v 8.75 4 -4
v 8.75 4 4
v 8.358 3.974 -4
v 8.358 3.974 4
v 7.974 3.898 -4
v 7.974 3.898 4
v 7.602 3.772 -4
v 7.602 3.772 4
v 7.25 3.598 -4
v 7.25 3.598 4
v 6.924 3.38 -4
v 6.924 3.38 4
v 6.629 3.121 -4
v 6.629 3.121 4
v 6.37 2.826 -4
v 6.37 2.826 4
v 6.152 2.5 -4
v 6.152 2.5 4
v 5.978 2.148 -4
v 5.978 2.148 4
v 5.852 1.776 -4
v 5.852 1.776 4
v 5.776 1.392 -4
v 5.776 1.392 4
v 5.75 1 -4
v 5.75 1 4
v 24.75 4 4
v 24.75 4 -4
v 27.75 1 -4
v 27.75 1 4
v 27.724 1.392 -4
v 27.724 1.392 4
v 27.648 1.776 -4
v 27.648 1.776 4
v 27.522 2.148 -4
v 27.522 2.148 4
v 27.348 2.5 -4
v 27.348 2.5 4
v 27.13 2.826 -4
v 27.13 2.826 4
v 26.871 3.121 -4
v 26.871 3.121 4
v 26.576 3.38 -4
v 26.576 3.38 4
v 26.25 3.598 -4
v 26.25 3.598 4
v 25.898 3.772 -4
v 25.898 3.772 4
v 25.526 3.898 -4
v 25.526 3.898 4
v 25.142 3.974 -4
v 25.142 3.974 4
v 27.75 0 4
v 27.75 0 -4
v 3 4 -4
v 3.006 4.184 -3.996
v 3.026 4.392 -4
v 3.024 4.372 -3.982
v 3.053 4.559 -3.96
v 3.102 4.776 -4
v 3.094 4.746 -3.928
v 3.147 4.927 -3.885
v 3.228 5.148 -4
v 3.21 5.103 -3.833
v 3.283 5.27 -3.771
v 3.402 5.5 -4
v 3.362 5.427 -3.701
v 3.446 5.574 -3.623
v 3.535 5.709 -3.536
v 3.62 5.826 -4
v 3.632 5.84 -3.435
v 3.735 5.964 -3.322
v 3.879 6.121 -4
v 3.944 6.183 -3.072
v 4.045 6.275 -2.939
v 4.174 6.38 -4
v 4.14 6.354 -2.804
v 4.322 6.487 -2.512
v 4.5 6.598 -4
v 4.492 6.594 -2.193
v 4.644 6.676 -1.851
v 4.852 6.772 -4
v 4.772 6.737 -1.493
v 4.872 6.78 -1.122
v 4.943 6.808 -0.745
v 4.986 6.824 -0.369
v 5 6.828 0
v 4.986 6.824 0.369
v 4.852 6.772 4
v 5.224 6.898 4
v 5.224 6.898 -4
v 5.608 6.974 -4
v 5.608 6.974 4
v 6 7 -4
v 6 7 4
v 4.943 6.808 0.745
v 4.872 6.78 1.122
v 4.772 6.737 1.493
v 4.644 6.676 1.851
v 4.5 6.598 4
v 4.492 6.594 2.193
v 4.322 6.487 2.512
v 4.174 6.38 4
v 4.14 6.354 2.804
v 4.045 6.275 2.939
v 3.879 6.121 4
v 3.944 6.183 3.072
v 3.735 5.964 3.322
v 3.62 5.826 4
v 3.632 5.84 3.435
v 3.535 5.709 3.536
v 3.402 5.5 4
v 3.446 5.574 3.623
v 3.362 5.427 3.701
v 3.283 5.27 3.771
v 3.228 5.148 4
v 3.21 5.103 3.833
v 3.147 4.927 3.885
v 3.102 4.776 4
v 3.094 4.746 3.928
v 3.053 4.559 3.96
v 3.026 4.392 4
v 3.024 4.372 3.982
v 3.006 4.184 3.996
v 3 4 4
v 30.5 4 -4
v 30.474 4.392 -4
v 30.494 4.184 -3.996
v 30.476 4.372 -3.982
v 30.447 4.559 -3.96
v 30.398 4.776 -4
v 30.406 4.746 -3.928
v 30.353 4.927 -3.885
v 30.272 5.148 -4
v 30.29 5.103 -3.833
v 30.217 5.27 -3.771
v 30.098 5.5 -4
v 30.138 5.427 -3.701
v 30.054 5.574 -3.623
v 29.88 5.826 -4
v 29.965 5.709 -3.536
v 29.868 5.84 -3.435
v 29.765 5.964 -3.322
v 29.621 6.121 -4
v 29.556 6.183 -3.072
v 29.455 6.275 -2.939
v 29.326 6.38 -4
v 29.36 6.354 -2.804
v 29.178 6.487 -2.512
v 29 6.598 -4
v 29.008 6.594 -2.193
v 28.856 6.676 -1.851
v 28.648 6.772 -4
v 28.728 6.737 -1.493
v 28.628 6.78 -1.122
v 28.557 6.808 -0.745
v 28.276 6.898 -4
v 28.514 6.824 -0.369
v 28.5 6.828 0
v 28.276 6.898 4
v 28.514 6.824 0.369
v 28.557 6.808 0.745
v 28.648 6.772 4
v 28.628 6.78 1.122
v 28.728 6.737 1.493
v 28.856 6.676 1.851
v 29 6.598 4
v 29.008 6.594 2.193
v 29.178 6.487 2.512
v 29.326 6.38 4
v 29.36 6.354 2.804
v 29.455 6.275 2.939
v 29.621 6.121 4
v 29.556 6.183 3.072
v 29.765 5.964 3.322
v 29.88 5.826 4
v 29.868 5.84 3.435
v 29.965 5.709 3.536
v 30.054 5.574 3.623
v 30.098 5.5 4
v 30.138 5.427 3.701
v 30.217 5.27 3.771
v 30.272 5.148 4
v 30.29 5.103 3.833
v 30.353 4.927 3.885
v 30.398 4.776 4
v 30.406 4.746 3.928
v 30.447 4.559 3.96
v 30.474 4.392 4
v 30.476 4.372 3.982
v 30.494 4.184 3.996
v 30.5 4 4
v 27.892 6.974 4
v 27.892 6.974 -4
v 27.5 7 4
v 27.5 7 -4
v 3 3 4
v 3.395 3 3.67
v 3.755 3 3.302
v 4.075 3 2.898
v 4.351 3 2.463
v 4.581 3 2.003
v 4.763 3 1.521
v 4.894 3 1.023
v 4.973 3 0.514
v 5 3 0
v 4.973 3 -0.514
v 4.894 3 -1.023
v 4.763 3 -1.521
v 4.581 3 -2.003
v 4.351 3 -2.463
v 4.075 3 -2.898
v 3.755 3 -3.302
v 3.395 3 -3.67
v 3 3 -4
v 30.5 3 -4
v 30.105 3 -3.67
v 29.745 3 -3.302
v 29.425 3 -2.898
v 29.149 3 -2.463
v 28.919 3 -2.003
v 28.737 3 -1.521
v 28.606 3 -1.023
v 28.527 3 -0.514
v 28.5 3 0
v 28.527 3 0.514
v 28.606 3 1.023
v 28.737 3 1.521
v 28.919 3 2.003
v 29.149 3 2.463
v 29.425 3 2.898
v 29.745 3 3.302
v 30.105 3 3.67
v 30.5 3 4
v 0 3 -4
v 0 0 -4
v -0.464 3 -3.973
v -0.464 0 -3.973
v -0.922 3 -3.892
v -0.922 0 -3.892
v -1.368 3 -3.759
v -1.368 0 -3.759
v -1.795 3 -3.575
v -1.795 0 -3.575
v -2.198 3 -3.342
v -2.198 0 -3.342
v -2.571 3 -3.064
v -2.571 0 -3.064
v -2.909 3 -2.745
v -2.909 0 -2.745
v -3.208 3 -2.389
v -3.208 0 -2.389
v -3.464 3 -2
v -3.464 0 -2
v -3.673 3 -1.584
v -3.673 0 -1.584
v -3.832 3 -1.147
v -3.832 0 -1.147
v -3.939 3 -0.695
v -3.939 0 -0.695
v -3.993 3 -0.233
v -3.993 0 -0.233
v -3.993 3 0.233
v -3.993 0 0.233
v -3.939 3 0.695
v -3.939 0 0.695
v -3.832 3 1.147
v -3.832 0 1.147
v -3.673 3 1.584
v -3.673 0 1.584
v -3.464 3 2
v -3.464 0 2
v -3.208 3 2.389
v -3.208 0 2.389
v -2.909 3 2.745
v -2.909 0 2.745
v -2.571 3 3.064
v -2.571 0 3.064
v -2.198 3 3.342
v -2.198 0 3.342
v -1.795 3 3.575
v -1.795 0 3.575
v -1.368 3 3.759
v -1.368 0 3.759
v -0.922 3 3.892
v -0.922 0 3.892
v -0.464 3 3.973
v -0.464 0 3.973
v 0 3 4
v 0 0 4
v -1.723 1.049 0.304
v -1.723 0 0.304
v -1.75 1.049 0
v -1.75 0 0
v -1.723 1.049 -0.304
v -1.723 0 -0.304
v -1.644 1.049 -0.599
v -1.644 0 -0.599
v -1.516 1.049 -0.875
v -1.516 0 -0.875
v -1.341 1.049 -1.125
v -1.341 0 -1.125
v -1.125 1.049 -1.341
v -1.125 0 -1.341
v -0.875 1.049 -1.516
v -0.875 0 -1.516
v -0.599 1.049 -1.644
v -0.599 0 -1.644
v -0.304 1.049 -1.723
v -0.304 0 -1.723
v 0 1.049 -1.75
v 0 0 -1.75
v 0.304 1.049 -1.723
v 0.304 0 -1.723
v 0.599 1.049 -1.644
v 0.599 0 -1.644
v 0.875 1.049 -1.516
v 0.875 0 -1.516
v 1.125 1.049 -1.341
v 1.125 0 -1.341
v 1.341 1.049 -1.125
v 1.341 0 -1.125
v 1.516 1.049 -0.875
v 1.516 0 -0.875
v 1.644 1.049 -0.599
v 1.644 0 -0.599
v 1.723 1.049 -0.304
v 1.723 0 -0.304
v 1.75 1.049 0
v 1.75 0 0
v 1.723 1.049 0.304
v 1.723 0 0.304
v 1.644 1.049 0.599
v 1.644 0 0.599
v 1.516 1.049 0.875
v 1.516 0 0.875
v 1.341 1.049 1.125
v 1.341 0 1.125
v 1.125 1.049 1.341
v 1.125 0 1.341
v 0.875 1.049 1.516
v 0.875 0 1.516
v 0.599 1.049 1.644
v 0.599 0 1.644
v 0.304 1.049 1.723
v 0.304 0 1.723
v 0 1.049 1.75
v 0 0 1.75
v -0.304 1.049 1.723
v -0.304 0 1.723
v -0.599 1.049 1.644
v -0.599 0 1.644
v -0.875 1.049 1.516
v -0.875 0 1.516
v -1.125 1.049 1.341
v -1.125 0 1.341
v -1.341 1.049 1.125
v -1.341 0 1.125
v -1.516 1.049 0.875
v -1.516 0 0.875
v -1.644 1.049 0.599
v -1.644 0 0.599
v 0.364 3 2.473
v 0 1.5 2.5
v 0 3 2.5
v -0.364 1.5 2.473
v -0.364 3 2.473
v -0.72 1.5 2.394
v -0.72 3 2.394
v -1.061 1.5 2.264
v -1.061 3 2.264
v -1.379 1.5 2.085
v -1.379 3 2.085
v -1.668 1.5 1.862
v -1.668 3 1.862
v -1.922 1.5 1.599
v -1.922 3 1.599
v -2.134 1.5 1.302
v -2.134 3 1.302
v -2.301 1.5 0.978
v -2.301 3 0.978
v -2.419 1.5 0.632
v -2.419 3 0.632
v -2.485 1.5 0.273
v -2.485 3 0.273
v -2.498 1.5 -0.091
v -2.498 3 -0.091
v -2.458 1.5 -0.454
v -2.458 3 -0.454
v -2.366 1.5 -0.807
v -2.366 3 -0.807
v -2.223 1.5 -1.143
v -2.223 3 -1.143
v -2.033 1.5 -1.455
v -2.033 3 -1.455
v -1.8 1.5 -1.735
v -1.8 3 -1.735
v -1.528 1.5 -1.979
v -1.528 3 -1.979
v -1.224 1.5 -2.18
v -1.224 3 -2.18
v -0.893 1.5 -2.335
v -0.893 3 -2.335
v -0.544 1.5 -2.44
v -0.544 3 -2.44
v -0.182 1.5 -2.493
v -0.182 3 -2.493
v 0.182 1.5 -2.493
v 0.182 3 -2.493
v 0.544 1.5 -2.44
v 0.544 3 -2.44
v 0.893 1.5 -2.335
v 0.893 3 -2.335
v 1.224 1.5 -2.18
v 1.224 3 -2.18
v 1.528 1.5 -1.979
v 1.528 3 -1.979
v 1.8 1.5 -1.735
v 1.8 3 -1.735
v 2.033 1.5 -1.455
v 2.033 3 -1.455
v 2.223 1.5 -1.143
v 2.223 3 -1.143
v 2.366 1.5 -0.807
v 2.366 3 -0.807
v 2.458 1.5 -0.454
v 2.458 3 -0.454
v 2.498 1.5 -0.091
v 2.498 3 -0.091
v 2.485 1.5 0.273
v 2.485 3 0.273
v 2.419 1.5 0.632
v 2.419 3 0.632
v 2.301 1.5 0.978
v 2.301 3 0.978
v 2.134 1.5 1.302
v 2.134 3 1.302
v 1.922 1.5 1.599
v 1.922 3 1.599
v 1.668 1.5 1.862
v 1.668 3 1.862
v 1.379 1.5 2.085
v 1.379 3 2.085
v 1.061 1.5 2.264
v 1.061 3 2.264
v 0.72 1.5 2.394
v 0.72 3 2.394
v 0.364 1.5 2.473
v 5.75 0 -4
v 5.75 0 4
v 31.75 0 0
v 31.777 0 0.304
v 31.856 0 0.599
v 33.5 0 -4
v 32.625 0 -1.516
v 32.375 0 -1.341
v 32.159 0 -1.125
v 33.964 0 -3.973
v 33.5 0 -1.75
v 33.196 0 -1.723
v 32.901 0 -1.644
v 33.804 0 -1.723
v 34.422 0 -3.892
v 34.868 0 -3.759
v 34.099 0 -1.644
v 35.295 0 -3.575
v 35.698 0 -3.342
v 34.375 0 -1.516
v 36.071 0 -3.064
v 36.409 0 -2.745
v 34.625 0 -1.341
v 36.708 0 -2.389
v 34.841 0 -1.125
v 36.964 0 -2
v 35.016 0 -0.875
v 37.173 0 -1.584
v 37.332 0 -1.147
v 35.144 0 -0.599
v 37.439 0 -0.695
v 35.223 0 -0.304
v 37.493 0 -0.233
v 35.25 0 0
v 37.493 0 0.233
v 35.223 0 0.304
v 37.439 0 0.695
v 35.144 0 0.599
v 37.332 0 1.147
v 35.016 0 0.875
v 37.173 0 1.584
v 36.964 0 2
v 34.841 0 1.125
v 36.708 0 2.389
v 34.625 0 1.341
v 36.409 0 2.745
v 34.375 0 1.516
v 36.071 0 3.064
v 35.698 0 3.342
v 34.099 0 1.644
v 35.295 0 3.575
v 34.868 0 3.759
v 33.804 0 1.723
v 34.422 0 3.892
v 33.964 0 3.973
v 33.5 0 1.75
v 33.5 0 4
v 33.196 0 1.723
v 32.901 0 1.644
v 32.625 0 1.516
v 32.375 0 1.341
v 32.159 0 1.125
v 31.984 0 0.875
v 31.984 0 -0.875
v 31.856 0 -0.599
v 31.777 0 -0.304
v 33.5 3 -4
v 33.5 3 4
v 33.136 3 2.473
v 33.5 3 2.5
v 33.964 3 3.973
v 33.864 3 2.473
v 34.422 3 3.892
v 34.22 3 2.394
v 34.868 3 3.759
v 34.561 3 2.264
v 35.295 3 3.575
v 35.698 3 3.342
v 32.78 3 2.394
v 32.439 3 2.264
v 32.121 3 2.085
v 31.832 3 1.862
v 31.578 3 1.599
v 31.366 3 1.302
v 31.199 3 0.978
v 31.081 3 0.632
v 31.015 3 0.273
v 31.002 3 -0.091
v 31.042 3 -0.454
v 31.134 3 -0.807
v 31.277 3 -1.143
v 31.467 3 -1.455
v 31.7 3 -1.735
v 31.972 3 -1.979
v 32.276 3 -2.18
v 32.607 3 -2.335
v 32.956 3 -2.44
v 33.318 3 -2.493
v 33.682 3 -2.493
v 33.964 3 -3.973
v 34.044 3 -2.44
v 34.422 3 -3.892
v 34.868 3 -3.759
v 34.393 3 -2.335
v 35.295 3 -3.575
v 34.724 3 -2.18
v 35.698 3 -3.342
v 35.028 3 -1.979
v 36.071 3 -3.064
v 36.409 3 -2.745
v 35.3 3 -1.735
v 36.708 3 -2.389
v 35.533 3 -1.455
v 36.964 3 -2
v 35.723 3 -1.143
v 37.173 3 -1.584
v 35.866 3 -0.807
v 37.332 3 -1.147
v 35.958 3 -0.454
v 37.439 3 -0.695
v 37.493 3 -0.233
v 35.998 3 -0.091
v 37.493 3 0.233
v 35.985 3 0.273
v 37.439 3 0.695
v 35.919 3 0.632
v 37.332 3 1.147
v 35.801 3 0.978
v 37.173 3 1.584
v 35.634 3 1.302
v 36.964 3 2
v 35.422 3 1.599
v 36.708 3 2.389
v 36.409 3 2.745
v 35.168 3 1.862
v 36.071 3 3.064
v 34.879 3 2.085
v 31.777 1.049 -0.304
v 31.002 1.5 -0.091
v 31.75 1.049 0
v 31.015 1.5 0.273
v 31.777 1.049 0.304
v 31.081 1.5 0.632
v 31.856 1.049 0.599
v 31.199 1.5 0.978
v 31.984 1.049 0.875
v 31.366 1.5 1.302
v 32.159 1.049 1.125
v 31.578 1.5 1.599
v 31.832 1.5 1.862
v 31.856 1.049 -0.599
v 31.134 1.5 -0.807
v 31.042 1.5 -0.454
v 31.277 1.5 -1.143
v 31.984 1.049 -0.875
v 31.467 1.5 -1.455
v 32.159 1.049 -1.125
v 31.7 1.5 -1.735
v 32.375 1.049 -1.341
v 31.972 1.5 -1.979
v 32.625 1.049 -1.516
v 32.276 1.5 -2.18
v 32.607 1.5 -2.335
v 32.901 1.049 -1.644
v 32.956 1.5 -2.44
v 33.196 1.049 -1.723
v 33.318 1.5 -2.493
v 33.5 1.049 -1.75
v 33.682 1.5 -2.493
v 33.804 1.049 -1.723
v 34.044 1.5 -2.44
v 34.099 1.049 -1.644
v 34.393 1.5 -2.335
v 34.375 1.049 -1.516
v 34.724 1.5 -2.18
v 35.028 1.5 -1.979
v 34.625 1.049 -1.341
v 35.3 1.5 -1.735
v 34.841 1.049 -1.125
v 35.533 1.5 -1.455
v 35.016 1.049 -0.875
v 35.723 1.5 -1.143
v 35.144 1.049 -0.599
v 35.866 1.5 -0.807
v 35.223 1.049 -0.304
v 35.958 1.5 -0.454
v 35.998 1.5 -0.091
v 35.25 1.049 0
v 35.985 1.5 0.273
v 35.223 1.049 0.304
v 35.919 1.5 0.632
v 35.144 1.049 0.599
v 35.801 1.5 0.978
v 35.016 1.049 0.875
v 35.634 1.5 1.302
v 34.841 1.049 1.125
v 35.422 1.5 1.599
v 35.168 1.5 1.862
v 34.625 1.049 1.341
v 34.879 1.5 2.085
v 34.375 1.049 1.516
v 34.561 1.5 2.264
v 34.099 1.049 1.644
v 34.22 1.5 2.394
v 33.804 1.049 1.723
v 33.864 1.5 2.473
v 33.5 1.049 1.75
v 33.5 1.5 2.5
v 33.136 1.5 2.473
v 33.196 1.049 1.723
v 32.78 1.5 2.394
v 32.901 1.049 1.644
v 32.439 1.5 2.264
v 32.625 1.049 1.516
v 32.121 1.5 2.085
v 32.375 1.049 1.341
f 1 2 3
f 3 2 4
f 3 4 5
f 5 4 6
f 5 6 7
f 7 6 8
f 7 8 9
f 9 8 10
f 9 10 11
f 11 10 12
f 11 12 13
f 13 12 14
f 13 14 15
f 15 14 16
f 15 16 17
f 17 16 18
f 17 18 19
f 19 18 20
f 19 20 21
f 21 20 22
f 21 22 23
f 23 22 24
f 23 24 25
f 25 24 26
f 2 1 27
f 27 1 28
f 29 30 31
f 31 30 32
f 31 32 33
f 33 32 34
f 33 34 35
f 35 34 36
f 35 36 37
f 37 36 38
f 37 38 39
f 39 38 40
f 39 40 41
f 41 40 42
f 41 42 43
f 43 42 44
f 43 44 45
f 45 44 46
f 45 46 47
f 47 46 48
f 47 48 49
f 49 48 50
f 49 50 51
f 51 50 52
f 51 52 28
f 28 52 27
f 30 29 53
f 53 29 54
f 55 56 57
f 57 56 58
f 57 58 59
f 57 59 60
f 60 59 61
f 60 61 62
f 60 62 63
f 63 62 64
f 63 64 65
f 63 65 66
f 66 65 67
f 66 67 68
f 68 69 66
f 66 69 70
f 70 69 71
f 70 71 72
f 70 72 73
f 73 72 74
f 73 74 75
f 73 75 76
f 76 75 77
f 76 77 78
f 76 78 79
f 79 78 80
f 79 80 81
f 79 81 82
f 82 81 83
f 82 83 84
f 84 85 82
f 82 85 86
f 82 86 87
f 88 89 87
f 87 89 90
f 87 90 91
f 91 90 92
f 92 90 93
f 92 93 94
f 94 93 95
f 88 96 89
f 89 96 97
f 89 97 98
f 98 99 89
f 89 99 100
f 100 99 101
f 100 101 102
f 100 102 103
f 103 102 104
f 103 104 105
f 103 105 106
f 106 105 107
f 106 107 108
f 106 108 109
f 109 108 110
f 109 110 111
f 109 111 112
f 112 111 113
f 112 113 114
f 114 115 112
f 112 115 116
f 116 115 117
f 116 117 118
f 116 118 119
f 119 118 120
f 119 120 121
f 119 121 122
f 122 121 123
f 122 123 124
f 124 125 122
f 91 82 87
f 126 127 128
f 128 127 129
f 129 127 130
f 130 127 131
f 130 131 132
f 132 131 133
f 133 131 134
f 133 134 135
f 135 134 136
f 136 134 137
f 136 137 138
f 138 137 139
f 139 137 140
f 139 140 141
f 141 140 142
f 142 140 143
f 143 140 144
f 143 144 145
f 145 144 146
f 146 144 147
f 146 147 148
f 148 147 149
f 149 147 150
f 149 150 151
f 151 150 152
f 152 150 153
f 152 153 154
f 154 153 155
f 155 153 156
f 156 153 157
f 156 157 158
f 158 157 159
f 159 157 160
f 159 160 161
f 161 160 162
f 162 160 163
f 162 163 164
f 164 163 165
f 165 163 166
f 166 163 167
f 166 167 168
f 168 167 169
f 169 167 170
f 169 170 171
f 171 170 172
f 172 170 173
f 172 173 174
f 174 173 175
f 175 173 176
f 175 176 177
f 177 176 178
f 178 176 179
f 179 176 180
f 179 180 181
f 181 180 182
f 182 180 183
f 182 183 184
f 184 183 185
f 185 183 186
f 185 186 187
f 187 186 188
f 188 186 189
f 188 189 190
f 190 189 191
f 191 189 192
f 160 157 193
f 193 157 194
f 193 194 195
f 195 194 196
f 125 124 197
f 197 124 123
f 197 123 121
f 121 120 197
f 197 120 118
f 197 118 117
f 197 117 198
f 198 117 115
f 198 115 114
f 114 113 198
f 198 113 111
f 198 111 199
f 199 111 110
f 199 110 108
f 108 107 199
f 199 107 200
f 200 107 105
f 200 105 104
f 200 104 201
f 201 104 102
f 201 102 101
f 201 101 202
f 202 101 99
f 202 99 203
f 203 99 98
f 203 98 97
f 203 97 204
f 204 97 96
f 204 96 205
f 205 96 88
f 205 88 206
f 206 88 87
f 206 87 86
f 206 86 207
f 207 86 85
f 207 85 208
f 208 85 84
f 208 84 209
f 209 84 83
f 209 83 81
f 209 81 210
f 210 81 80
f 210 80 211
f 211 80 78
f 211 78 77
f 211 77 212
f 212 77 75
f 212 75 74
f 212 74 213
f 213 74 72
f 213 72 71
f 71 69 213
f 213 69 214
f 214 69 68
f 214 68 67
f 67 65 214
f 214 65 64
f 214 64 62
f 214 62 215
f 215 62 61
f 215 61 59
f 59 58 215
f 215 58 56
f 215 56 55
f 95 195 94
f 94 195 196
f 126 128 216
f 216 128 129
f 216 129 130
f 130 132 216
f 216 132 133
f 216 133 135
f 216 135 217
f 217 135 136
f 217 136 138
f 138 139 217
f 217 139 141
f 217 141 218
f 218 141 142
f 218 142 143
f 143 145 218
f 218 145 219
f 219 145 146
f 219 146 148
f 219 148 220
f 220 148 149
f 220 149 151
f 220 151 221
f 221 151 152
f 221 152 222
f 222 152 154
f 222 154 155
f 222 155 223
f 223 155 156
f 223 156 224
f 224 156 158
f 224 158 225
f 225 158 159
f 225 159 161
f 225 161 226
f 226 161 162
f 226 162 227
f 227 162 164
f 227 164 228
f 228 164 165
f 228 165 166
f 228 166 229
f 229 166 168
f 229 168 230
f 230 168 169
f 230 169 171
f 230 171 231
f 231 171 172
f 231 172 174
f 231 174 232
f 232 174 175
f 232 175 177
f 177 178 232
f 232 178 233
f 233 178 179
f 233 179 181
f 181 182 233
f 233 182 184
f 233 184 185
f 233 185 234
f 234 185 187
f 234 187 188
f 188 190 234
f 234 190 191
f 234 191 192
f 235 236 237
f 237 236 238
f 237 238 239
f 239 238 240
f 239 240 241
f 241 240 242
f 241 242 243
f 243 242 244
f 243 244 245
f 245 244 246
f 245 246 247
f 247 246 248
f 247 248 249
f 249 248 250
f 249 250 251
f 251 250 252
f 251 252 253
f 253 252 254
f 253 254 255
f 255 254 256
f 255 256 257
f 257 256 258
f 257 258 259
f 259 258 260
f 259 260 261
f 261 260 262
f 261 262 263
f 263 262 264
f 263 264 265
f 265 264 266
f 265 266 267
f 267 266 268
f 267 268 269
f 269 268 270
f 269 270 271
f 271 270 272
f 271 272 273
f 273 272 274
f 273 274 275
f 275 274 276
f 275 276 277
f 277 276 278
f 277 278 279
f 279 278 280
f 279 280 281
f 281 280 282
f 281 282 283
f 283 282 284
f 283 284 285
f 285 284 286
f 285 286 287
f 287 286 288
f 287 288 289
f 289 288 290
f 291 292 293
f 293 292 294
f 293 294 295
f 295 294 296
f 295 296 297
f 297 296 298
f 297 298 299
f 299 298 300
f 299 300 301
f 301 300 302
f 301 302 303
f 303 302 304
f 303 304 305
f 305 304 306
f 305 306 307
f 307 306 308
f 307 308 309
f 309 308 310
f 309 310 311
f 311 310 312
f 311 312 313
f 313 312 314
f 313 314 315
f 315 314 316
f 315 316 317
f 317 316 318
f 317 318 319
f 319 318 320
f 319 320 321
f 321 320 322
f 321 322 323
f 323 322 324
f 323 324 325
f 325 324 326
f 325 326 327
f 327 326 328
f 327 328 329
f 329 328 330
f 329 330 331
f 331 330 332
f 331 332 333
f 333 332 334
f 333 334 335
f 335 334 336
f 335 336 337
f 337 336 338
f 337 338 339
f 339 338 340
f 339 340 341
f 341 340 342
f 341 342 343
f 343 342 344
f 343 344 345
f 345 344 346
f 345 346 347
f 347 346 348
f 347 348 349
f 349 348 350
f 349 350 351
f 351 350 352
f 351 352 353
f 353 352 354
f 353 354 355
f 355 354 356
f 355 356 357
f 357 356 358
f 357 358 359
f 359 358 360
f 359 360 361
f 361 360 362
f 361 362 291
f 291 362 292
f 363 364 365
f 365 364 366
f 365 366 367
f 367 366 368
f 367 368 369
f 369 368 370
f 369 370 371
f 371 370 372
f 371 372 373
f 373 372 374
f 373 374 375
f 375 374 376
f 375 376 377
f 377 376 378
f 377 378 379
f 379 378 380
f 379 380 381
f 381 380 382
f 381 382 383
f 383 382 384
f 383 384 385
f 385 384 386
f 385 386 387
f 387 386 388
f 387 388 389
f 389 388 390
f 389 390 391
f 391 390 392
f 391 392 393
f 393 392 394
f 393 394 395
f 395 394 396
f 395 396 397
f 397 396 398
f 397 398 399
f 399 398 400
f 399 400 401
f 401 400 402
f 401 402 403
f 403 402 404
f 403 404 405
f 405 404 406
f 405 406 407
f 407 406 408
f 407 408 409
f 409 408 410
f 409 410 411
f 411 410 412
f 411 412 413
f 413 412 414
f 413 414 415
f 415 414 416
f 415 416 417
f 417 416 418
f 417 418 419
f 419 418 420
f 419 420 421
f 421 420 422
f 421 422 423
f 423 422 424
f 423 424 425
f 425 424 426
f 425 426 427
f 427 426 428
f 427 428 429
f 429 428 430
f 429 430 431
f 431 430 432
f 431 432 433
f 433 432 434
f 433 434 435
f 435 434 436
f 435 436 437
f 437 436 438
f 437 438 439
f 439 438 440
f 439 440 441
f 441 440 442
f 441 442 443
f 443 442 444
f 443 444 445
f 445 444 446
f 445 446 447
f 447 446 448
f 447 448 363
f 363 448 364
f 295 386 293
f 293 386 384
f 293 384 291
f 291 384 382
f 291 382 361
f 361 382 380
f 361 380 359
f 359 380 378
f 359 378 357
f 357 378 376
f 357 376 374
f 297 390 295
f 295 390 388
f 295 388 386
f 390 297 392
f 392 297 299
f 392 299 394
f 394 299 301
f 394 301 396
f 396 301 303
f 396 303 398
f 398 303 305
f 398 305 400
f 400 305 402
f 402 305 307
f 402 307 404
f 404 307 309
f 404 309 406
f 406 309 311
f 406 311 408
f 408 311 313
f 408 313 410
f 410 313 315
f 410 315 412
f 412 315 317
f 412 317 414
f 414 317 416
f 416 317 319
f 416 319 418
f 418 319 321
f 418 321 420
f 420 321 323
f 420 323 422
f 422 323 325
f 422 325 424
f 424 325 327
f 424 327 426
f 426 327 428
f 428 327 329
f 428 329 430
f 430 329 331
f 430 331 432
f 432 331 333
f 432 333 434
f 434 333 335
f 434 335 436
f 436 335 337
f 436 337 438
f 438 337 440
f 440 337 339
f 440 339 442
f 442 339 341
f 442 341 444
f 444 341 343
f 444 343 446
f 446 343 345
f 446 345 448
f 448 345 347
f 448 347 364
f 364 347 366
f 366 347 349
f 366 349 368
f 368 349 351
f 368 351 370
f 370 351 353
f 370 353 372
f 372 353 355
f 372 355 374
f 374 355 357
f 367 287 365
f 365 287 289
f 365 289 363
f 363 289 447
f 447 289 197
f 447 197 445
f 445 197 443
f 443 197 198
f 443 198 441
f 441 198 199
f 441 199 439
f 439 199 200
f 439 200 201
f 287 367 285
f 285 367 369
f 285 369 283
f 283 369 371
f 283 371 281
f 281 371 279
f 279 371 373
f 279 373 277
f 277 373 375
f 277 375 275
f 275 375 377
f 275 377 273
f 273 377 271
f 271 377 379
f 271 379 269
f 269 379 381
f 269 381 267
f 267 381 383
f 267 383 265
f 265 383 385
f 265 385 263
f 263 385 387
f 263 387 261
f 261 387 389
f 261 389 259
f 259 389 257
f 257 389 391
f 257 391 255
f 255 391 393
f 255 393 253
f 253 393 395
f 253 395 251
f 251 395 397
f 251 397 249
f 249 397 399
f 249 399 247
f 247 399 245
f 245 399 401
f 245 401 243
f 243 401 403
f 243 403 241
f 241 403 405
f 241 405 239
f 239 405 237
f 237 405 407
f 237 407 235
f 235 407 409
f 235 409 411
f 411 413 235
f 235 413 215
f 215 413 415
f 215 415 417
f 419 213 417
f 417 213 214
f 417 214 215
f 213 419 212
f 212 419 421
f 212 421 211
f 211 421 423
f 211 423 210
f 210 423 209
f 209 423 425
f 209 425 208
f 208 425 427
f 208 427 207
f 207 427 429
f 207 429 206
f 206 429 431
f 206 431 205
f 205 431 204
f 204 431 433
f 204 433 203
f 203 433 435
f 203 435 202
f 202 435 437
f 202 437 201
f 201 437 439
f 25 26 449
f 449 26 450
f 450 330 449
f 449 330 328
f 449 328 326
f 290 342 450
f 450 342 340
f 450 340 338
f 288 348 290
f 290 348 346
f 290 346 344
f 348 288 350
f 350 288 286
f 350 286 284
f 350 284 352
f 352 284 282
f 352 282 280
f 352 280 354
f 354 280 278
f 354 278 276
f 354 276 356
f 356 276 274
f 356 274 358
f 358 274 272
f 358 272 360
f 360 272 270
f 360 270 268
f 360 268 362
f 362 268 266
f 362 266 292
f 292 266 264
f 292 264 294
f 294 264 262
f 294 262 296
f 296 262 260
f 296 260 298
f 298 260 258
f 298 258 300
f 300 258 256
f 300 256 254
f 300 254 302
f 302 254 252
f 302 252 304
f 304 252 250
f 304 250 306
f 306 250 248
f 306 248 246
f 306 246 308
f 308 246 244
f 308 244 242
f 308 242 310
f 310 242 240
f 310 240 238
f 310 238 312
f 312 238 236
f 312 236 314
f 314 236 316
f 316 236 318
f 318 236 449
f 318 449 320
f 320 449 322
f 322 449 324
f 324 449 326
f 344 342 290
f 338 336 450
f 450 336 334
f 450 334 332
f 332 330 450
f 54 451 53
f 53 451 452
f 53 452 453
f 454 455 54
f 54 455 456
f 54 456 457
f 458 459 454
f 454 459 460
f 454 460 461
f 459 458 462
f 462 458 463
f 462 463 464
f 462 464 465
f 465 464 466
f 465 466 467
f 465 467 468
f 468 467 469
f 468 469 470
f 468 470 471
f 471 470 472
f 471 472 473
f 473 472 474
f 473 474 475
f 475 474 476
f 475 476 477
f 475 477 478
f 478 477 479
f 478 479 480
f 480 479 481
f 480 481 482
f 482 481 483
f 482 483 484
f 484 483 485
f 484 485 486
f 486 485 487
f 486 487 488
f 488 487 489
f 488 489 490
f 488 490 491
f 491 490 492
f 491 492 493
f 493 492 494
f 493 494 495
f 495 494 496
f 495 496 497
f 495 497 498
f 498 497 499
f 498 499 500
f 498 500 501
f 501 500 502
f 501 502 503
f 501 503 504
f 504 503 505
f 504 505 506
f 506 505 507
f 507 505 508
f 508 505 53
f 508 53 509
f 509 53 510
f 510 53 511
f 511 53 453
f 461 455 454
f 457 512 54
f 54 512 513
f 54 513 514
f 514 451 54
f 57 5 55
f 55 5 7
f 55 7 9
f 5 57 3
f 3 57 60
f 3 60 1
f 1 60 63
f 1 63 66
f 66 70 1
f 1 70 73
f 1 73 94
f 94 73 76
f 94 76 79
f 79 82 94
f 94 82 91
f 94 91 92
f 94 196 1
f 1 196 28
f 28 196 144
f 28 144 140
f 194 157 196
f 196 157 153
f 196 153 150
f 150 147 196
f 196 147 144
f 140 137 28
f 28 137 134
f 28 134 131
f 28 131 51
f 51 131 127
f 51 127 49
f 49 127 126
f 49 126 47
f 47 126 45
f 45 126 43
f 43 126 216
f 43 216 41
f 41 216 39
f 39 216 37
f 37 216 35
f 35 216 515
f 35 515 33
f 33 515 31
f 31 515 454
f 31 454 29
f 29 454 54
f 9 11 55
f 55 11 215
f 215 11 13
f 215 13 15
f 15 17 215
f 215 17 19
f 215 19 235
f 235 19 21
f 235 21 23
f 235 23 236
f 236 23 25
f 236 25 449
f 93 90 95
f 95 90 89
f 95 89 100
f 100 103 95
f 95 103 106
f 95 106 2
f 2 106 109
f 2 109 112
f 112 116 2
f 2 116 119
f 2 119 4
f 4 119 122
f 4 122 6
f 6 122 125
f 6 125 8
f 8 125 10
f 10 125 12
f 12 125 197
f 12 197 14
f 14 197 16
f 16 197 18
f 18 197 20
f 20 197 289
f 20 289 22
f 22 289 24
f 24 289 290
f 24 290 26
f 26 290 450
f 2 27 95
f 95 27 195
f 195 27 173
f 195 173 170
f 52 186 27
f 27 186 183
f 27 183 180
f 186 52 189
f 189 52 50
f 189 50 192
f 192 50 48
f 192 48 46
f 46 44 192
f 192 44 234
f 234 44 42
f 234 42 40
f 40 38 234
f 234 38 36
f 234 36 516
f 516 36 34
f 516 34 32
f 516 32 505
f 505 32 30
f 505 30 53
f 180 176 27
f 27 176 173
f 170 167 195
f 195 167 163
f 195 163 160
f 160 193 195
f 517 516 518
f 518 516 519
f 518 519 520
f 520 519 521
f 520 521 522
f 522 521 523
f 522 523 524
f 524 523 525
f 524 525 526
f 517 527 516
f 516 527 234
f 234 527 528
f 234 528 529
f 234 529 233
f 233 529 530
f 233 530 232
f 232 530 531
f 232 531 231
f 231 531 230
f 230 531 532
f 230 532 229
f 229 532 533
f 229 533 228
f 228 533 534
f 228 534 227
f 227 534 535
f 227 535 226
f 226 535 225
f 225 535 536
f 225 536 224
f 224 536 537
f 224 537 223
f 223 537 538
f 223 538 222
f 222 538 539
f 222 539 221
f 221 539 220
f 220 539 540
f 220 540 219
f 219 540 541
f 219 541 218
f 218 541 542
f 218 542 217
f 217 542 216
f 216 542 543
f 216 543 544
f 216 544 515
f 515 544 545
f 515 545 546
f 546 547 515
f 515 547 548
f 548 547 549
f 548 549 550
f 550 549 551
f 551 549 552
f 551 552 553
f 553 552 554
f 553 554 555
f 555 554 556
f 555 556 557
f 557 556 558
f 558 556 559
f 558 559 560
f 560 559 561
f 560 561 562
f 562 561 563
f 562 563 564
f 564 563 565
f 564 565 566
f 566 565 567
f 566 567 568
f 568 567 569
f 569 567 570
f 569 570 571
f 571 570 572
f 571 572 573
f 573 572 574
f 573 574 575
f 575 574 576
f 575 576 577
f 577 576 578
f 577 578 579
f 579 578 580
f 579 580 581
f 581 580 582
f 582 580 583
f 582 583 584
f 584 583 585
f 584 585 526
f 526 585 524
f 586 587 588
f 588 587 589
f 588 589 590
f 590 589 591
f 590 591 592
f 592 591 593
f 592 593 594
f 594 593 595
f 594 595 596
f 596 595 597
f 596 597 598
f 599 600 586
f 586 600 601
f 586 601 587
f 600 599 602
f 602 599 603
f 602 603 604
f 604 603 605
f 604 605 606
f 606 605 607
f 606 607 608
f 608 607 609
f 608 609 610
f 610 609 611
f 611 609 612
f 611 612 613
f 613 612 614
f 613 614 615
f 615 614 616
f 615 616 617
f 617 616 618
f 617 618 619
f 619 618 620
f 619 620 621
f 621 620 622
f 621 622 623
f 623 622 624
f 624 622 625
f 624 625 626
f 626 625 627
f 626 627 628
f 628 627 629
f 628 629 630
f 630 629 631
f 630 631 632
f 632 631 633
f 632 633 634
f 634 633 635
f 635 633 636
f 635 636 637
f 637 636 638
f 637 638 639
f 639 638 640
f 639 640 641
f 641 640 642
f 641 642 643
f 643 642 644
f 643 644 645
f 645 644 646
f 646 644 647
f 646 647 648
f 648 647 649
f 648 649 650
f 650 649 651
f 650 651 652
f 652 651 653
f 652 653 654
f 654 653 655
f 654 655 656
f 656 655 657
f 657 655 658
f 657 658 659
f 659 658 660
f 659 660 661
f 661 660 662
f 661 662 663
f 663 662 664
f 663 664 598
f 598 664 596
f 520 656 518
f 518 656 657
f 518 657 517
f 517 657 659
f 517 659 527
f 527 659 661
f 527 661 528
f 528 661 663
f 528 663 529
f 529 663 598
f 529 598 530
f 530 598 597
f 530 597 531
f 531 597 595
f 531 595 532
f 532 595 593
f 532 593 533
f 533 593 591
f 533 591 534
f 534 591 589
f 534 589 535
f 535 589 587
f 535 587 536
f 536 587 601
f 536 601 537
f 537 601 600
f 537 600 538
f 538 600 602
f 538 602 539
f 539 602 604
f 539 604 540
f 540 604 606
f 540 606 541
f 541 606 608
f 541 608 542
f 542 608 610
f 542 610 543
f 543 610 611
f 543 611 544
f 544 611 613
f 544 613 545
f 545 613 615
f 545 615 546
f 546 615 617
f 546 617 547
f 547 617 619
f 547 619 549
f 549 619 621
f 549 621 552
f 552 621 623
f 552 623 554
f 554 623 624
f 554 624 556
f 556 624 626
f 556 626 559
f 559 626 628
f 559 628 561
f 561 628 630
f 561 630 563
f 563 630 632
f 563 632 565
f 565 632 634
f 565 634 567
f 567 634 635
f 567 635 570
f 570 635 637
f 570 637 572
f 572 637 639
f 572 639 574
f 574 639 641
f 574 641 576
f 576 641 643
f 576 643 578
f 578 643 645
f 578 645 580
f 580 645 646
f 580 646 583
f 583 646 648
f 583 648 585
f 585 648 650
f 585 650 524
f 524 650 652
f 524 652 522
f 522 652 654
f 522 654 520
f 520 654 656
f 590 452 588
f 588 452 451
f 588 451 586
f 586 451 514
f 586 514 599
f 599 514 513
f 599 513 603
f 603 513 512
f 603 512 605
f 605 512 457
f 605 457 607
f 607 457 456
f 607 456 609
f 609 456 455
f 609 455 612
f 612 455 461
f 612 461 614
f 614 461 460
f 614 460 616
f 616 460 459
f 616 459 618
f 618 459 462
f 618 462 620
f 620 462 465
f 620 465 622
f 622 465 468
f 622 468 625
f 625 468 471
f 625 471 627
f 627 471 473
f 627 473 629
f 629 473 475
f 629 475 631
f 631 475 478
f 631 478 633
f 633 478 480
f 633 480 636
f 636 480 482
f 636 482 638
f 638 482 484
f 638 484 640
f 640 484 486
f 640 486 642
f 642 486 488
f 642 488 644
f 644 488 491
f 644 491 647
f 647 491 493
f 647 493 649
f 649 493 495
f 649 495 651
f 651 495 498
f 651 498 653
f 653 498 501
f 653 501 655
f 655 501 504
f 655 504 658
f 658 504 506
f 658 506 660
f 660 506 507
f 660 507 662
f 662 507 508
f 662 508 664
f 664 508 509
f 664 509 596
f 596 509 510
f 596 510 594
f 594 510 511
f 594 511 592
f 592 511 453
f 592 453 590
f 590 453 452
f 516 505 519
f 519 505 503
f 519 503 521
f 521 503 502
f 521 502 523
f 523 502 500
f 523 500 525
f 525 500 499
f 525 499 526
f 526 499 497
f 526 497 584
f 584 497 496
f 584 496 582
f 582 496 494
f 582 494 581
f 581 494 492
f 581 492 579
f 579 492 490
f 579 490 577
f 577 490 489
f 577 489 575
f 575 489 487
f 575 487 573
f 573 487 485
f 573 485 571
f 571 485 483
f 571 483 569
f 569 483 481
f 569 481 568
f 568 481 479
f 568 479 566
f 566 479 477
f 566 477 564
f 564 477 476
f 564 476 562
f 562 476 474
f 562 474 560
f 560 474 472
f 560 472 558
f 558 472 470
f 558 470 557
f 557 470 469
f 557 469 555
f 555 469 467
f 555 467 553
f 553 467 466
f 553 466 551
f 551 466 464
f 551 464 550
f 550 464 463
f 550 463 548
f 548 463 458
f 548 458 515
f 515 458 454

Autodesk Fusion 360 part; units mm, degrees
sketch "Sketch1" plane through (0, 0, 0) normal (0, 1, 0) x (1, 0, 0)
  line L0 (0, 0) -> (33.5, 0)
  circle A0 centre (0, 0) radius 1.75
  circle A1 centre (33.5, 0) radius 1.75
  circle A2 centre (33.5, 0) radius 4
  circle A3 centre (0, 0) radius 4
  line L1 (0, 4) -> (33.5, 4)
  line L2 (33.5, -4) -> (0, -4)
  dimension "d1" = 33.5
  dimension "d2" = 3.5
  dimension "d3" = 3.5
  dimension "d4" = 8
  dimension "d5" = 8
extrude "Extrude1" add sketch "Sketch1" along normal blind 3 makes body 1
hole "Hole1" at (0, 3, 0) direction (0, -1, 0) diameter 5 depth 1.5 tip angle 118 bodies 1
hole "Hole2" at (33.5, 3, 0) direction (0, -1, 0) diameter 5 depth 1.5 tip angle 118 bodies 1
sketch "Sketch9" plane through (0, 3, 0) normal (0, 1, 0) x (-1, 0, 0)
  circle A0 centre (-33.5, 0) radius 2.5
  circle A1 centre (0, 0) radius 2.5
  arc A2 (0, -4) -> (0, 4) centre (0, 0) ccw
  line L0 (0, 4) -> (-33.5, 4)
  arc A3 (-33.5, 4) -> (-33.5, -4) centre (-33.5, 0) ccw
  line L1 (-33.5, -4) -> (0, -4)
  line L2 (-16.75, 4) -> (-5.75, 4)
  line L3 (-16.75, 4) -> (-27.75, 4)
  line L4 (-27.75, 4) -> (-27.75, -4)
  line L5 (-5.75, 4) -> (-5.75, -4)
  circle A4 centre (0, 0) radius 5
  circle A5 centre (-33.5, 0) radius 5
  dimension "d79" = 11
  dimension "d80" = 11
  dimension "d81" = 10
  dimension "d82" = 10
extrude "Extrude13" add sketch "Sketch9" along normal blind 4 contours L0 L1 L5 A4 | L0 L1 L4 A5 bodies 1
extrude "Extrude14" cut sketch "Sketch9" against normal blind 3 contours L0 L1 L2 L3 L4 L5 bodies 1 makes body 2 at (2.2804, 0, -3.1227)
sketch "Sketch10" plane through (5.75, 0, 0) normal (1, 0, 0) x (0, 0, -1)
  line L0 (4, 0) -> (4, 7)
  line L1 (4, 7) -> (-4, 7)
  line L2 (-4, 7) -> (-4, 0)
  line L3 (-4, 0) -> (4, 0)
  line L4 (-4, 7) -> (4, 7)
  line L5 (4, 7) -> (4, 4)
  line L6 (4, 4) -> (-4, 4)
  line L7 (-4, 4) -> (-4, 7)
  dimension "d87" = 3
extrude "Extrude15" add sketch "Sketch10" along normal blind 22 contours L0 L1 L2 L4 L5 L6 L7 bodies 1 2
sketch "Sketch11" plane through (0, 0, 4) normal (0, 0, 1) x (1, 0, 0)
  line L0 (30.5, 7) -> (3, 7)
  line L1 (3, 7) -> (3, 3)
  line L2 (33.5, 3) -> (30.5, 3)
  line L3 (0, 3) -> (0, 0)
  line L4 (27.75, 0) -> (33.5, 0)
  line L5 (5.75, 0) -> (5.75, 4)
  line L6 (5.75, 4) -> (27.75, 4)
  line L7 (5.75, 4) -> (3, 4)
  line L8 (3, 4) -> (6, 4)
  arc A0 (6, 7) -> (3, 4) centre (6, 4) ccw
  line L9 (27.75, 4) -> (27.75, 0)
  line L10 (33.5, 0) -> (33.5, 3)
  line L11 (30.5, 3) -> (30.5, 7)
  line L12 (3, 3) -> (0, 3)
  line L13 (0, 0) -> (5.75, 0)
  line L14 (30.5, 4) -> (27.5, 4)
  arc A1 (30.5, 4) -> (27.5, 7) centre (27.5, 4) ccw
  dimension "d90" = 3
  dimension "d101" = 3
extrude "Extrude16" cut sketch "Sketch11" against normal blind 10 contours L0 L11 A1 | L0 L1 A0 bodies 1
sketch "Sketch12" plane through (0, 0, 4) normal (0, 0, 1) x (1, 0, 0)
  line L0 (27.75, 4) -> (27.75, 0)
  line L1 (0, 0) -> (5.75, 0)
  line L2 (33.5, 0) -> (33.5, 3)
  line L3 (3, 3) -> (0, 3)
  line L4 (30.5, 3) -> (30.5, 4)
  line L5 (27.5, 7) -> (6, 7)
  line L6 (27.75, 4) -> (24.75, 4)
  line L7 (24.75, 4) -> (24.75, 1)
  arc A0 (27.75, 1) -> (24.75, 4) centre (24.75, 1) ccw
  arc A1 (6, 7) -> (3, 4) centre (6, 4) ccw
  line L8 (3, 4) -> (3, 3)
  line L9 (0, 3) -> (0, 0)
  line L10 (5.75, 0) -> (5.75, 4)
  line L11 (5.75, 4) -> (27.75, 4)
  arc A2 (30.5, 4) -> (27.5, 7) centre (27.5, 4) ccw
  line L12 (27.75, 0) -> (33.5, 0)
  line L13 (33.5, 3) -> (30.5, 3)
  line L14 (5.75, 4) -> (8.75, 4)
  line L15 (8.75, 4) -> (8.75, 1)
  arc A3 (8.75, 4) -> (5.75, 1) centre (8.75, 1) ccw
  dimension "d94" = 3
  dimension "d95" = 3
  dimension "d102" = 3
  dimension "d103" = 3
extrude "Extrude17" add sketch "Sketch12" against normal blind 8 contours L0 L6 A0 L11 | L10 L11 L14 A3 bodies 1
